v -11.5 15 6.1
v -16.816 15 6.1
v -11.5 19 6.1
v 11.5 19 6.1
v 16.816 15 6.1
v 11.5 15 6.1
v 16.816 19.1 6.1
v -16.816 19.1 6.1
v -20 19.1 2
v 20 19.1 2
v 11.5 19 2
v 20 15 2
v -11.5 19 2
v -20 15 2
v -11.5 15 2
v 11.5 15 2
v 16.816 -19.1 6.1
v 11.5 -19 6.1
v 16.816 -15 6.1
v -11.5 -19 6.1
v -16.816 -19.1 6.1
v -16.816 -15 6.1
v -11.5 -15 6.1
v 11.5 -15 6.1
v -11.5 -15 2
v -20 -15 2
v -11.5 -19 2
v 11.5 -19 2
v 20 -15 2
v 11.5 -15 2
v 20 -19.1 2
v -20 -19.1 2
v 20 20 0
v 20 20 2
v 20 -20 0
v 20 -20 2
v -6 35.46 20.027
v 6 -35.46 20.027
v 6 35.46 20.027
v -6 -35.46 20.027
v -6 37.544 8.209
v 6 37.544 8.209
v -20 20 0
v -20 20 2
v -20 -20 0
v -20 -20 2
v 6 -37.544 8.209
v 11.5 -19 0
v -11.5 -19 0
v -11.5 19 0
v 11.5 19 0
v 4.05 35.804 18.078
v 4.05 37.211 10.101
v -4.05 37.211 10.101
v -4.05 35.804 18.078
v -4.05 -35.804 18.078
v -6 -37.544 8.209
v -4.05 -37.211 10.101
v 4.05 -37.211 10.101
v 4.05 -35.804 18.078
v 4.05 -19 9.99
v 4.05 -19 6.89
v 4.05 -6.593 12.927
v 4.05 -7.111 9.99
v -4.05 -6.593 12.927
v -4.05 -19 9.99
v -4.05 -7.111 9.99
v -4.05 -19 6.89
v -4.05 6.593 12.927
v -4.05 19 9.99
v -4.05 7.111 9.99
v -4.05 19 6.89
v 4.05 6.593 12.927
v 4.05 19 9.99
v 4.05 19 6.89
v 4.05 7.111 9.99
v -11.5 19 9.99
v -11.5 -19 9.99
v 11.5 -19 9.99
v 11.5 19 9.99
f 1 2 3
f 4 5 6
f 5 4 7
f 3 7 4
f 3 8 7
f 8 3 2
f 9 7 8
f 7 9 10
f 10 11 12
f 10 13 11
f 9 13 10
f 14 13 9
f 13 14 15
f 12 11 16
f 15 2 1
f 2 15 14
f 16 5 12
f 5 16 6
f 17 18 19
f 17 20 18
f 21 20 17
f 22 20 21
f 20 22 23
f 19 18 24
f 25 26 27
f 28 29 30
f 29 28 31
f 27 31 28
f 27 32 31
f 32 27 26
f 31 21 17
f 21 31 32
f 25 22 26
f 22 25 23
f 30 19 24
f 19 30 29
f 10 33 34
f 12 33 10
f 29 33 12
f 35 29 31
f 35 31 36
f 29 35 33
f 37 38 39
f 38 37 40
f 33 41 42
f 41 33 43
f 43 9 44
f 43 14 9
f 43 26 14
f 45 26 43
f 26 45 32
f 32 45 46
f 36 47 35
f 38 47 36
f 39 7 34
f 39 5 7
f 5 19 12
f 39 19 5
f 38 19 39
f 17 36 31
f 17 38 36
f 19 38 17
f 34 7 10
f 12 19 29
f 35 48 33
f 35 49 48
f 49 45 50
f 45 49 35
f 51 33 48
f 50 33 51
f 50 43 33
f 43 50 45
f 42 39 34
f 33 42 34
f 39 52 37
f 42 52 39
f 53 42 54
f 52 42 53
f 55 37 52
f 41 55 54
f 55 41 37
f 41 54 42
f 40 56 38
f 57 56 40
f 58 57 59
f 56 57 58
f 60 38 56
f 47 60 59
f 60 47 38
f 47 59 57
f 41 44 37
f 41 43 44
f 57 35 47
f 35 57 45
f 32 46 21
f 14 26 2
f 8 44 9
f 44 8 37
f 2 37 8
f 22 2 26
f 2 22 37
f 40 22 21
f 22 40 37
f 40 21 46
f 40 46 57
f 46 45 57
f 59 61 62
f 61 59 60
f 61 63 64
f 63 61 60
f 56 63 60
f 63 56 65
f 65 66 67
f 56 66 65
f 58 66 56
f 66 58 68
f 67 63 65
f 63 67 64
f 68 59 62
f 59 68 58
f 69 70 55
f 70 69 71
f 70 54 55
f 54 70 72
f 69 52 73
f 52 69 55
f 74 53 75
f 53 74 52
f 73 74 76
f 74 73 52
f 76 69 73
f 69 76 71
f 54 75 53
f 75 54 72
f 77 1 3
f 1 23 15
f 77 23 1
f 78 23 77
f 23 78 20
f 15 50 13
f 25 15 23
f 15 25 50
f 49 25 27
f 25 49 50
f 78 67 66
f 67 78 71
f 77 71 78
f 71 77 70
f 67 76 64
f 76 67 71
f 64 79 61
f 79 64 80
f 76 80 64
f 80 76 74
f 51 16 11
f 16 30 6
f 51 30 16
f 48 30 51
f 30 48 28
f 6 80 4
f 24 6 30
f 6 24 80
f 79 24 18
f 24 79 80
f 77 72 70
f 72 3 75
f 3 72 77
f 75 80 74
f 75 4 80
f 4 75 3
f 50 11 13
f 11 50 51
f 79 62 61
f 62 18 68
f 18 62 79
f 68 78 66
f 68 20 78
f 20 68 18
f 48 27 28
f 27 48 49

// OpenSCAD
bw=40;
bh=60;

rx = 100;
rdy = 4.1;
roy = 30;

abx = 40;
adx0 = 8.1;
adx1 = 12;
ady = 30;
aoy = 8;
aoz = 3;
arot = 10;

acx = 23;
acy = 38;
acz = 10;


module rails(oz=2) {
    
  translate([-rx/2,roy/2,oz]) cube([rx,rdy,rdy]);
  mirror([0,1,0]){
    translate([-rx/2,roy/2,oz]) cube([rx,rdy,rdy]);
  }
    
}


difference(){
hull(){
  translate([-abx/2,-bw/2,0])cube([abx,bw,2]);

  mirror([0,1,0]){
    translate([-adx1/2,aoy,aoz])rotate([arot,0,0])cube([adx1,ady,adx1]);
  }
  translate([-adx1/2,aoy,aoz])rotate([arot,0,0])cube([adx1,ady,adx1]);
}

  mirror([0,1,0]){
    translate([-adx0/2,aoy,aoz+adx1/2-adx0/2])rotate([arot,0,0])cube([adx0,100,adx0]);
  }
  translate([-adx0/2,aoy,aoz+adx1/2-adx0/2])rotate([arot,0,0])cube([adx0,100,adx0]);
  
  
  translate([-acx/2,-acy/2,-0.01])cube([acx,acy,acz]);
  rails();
}
